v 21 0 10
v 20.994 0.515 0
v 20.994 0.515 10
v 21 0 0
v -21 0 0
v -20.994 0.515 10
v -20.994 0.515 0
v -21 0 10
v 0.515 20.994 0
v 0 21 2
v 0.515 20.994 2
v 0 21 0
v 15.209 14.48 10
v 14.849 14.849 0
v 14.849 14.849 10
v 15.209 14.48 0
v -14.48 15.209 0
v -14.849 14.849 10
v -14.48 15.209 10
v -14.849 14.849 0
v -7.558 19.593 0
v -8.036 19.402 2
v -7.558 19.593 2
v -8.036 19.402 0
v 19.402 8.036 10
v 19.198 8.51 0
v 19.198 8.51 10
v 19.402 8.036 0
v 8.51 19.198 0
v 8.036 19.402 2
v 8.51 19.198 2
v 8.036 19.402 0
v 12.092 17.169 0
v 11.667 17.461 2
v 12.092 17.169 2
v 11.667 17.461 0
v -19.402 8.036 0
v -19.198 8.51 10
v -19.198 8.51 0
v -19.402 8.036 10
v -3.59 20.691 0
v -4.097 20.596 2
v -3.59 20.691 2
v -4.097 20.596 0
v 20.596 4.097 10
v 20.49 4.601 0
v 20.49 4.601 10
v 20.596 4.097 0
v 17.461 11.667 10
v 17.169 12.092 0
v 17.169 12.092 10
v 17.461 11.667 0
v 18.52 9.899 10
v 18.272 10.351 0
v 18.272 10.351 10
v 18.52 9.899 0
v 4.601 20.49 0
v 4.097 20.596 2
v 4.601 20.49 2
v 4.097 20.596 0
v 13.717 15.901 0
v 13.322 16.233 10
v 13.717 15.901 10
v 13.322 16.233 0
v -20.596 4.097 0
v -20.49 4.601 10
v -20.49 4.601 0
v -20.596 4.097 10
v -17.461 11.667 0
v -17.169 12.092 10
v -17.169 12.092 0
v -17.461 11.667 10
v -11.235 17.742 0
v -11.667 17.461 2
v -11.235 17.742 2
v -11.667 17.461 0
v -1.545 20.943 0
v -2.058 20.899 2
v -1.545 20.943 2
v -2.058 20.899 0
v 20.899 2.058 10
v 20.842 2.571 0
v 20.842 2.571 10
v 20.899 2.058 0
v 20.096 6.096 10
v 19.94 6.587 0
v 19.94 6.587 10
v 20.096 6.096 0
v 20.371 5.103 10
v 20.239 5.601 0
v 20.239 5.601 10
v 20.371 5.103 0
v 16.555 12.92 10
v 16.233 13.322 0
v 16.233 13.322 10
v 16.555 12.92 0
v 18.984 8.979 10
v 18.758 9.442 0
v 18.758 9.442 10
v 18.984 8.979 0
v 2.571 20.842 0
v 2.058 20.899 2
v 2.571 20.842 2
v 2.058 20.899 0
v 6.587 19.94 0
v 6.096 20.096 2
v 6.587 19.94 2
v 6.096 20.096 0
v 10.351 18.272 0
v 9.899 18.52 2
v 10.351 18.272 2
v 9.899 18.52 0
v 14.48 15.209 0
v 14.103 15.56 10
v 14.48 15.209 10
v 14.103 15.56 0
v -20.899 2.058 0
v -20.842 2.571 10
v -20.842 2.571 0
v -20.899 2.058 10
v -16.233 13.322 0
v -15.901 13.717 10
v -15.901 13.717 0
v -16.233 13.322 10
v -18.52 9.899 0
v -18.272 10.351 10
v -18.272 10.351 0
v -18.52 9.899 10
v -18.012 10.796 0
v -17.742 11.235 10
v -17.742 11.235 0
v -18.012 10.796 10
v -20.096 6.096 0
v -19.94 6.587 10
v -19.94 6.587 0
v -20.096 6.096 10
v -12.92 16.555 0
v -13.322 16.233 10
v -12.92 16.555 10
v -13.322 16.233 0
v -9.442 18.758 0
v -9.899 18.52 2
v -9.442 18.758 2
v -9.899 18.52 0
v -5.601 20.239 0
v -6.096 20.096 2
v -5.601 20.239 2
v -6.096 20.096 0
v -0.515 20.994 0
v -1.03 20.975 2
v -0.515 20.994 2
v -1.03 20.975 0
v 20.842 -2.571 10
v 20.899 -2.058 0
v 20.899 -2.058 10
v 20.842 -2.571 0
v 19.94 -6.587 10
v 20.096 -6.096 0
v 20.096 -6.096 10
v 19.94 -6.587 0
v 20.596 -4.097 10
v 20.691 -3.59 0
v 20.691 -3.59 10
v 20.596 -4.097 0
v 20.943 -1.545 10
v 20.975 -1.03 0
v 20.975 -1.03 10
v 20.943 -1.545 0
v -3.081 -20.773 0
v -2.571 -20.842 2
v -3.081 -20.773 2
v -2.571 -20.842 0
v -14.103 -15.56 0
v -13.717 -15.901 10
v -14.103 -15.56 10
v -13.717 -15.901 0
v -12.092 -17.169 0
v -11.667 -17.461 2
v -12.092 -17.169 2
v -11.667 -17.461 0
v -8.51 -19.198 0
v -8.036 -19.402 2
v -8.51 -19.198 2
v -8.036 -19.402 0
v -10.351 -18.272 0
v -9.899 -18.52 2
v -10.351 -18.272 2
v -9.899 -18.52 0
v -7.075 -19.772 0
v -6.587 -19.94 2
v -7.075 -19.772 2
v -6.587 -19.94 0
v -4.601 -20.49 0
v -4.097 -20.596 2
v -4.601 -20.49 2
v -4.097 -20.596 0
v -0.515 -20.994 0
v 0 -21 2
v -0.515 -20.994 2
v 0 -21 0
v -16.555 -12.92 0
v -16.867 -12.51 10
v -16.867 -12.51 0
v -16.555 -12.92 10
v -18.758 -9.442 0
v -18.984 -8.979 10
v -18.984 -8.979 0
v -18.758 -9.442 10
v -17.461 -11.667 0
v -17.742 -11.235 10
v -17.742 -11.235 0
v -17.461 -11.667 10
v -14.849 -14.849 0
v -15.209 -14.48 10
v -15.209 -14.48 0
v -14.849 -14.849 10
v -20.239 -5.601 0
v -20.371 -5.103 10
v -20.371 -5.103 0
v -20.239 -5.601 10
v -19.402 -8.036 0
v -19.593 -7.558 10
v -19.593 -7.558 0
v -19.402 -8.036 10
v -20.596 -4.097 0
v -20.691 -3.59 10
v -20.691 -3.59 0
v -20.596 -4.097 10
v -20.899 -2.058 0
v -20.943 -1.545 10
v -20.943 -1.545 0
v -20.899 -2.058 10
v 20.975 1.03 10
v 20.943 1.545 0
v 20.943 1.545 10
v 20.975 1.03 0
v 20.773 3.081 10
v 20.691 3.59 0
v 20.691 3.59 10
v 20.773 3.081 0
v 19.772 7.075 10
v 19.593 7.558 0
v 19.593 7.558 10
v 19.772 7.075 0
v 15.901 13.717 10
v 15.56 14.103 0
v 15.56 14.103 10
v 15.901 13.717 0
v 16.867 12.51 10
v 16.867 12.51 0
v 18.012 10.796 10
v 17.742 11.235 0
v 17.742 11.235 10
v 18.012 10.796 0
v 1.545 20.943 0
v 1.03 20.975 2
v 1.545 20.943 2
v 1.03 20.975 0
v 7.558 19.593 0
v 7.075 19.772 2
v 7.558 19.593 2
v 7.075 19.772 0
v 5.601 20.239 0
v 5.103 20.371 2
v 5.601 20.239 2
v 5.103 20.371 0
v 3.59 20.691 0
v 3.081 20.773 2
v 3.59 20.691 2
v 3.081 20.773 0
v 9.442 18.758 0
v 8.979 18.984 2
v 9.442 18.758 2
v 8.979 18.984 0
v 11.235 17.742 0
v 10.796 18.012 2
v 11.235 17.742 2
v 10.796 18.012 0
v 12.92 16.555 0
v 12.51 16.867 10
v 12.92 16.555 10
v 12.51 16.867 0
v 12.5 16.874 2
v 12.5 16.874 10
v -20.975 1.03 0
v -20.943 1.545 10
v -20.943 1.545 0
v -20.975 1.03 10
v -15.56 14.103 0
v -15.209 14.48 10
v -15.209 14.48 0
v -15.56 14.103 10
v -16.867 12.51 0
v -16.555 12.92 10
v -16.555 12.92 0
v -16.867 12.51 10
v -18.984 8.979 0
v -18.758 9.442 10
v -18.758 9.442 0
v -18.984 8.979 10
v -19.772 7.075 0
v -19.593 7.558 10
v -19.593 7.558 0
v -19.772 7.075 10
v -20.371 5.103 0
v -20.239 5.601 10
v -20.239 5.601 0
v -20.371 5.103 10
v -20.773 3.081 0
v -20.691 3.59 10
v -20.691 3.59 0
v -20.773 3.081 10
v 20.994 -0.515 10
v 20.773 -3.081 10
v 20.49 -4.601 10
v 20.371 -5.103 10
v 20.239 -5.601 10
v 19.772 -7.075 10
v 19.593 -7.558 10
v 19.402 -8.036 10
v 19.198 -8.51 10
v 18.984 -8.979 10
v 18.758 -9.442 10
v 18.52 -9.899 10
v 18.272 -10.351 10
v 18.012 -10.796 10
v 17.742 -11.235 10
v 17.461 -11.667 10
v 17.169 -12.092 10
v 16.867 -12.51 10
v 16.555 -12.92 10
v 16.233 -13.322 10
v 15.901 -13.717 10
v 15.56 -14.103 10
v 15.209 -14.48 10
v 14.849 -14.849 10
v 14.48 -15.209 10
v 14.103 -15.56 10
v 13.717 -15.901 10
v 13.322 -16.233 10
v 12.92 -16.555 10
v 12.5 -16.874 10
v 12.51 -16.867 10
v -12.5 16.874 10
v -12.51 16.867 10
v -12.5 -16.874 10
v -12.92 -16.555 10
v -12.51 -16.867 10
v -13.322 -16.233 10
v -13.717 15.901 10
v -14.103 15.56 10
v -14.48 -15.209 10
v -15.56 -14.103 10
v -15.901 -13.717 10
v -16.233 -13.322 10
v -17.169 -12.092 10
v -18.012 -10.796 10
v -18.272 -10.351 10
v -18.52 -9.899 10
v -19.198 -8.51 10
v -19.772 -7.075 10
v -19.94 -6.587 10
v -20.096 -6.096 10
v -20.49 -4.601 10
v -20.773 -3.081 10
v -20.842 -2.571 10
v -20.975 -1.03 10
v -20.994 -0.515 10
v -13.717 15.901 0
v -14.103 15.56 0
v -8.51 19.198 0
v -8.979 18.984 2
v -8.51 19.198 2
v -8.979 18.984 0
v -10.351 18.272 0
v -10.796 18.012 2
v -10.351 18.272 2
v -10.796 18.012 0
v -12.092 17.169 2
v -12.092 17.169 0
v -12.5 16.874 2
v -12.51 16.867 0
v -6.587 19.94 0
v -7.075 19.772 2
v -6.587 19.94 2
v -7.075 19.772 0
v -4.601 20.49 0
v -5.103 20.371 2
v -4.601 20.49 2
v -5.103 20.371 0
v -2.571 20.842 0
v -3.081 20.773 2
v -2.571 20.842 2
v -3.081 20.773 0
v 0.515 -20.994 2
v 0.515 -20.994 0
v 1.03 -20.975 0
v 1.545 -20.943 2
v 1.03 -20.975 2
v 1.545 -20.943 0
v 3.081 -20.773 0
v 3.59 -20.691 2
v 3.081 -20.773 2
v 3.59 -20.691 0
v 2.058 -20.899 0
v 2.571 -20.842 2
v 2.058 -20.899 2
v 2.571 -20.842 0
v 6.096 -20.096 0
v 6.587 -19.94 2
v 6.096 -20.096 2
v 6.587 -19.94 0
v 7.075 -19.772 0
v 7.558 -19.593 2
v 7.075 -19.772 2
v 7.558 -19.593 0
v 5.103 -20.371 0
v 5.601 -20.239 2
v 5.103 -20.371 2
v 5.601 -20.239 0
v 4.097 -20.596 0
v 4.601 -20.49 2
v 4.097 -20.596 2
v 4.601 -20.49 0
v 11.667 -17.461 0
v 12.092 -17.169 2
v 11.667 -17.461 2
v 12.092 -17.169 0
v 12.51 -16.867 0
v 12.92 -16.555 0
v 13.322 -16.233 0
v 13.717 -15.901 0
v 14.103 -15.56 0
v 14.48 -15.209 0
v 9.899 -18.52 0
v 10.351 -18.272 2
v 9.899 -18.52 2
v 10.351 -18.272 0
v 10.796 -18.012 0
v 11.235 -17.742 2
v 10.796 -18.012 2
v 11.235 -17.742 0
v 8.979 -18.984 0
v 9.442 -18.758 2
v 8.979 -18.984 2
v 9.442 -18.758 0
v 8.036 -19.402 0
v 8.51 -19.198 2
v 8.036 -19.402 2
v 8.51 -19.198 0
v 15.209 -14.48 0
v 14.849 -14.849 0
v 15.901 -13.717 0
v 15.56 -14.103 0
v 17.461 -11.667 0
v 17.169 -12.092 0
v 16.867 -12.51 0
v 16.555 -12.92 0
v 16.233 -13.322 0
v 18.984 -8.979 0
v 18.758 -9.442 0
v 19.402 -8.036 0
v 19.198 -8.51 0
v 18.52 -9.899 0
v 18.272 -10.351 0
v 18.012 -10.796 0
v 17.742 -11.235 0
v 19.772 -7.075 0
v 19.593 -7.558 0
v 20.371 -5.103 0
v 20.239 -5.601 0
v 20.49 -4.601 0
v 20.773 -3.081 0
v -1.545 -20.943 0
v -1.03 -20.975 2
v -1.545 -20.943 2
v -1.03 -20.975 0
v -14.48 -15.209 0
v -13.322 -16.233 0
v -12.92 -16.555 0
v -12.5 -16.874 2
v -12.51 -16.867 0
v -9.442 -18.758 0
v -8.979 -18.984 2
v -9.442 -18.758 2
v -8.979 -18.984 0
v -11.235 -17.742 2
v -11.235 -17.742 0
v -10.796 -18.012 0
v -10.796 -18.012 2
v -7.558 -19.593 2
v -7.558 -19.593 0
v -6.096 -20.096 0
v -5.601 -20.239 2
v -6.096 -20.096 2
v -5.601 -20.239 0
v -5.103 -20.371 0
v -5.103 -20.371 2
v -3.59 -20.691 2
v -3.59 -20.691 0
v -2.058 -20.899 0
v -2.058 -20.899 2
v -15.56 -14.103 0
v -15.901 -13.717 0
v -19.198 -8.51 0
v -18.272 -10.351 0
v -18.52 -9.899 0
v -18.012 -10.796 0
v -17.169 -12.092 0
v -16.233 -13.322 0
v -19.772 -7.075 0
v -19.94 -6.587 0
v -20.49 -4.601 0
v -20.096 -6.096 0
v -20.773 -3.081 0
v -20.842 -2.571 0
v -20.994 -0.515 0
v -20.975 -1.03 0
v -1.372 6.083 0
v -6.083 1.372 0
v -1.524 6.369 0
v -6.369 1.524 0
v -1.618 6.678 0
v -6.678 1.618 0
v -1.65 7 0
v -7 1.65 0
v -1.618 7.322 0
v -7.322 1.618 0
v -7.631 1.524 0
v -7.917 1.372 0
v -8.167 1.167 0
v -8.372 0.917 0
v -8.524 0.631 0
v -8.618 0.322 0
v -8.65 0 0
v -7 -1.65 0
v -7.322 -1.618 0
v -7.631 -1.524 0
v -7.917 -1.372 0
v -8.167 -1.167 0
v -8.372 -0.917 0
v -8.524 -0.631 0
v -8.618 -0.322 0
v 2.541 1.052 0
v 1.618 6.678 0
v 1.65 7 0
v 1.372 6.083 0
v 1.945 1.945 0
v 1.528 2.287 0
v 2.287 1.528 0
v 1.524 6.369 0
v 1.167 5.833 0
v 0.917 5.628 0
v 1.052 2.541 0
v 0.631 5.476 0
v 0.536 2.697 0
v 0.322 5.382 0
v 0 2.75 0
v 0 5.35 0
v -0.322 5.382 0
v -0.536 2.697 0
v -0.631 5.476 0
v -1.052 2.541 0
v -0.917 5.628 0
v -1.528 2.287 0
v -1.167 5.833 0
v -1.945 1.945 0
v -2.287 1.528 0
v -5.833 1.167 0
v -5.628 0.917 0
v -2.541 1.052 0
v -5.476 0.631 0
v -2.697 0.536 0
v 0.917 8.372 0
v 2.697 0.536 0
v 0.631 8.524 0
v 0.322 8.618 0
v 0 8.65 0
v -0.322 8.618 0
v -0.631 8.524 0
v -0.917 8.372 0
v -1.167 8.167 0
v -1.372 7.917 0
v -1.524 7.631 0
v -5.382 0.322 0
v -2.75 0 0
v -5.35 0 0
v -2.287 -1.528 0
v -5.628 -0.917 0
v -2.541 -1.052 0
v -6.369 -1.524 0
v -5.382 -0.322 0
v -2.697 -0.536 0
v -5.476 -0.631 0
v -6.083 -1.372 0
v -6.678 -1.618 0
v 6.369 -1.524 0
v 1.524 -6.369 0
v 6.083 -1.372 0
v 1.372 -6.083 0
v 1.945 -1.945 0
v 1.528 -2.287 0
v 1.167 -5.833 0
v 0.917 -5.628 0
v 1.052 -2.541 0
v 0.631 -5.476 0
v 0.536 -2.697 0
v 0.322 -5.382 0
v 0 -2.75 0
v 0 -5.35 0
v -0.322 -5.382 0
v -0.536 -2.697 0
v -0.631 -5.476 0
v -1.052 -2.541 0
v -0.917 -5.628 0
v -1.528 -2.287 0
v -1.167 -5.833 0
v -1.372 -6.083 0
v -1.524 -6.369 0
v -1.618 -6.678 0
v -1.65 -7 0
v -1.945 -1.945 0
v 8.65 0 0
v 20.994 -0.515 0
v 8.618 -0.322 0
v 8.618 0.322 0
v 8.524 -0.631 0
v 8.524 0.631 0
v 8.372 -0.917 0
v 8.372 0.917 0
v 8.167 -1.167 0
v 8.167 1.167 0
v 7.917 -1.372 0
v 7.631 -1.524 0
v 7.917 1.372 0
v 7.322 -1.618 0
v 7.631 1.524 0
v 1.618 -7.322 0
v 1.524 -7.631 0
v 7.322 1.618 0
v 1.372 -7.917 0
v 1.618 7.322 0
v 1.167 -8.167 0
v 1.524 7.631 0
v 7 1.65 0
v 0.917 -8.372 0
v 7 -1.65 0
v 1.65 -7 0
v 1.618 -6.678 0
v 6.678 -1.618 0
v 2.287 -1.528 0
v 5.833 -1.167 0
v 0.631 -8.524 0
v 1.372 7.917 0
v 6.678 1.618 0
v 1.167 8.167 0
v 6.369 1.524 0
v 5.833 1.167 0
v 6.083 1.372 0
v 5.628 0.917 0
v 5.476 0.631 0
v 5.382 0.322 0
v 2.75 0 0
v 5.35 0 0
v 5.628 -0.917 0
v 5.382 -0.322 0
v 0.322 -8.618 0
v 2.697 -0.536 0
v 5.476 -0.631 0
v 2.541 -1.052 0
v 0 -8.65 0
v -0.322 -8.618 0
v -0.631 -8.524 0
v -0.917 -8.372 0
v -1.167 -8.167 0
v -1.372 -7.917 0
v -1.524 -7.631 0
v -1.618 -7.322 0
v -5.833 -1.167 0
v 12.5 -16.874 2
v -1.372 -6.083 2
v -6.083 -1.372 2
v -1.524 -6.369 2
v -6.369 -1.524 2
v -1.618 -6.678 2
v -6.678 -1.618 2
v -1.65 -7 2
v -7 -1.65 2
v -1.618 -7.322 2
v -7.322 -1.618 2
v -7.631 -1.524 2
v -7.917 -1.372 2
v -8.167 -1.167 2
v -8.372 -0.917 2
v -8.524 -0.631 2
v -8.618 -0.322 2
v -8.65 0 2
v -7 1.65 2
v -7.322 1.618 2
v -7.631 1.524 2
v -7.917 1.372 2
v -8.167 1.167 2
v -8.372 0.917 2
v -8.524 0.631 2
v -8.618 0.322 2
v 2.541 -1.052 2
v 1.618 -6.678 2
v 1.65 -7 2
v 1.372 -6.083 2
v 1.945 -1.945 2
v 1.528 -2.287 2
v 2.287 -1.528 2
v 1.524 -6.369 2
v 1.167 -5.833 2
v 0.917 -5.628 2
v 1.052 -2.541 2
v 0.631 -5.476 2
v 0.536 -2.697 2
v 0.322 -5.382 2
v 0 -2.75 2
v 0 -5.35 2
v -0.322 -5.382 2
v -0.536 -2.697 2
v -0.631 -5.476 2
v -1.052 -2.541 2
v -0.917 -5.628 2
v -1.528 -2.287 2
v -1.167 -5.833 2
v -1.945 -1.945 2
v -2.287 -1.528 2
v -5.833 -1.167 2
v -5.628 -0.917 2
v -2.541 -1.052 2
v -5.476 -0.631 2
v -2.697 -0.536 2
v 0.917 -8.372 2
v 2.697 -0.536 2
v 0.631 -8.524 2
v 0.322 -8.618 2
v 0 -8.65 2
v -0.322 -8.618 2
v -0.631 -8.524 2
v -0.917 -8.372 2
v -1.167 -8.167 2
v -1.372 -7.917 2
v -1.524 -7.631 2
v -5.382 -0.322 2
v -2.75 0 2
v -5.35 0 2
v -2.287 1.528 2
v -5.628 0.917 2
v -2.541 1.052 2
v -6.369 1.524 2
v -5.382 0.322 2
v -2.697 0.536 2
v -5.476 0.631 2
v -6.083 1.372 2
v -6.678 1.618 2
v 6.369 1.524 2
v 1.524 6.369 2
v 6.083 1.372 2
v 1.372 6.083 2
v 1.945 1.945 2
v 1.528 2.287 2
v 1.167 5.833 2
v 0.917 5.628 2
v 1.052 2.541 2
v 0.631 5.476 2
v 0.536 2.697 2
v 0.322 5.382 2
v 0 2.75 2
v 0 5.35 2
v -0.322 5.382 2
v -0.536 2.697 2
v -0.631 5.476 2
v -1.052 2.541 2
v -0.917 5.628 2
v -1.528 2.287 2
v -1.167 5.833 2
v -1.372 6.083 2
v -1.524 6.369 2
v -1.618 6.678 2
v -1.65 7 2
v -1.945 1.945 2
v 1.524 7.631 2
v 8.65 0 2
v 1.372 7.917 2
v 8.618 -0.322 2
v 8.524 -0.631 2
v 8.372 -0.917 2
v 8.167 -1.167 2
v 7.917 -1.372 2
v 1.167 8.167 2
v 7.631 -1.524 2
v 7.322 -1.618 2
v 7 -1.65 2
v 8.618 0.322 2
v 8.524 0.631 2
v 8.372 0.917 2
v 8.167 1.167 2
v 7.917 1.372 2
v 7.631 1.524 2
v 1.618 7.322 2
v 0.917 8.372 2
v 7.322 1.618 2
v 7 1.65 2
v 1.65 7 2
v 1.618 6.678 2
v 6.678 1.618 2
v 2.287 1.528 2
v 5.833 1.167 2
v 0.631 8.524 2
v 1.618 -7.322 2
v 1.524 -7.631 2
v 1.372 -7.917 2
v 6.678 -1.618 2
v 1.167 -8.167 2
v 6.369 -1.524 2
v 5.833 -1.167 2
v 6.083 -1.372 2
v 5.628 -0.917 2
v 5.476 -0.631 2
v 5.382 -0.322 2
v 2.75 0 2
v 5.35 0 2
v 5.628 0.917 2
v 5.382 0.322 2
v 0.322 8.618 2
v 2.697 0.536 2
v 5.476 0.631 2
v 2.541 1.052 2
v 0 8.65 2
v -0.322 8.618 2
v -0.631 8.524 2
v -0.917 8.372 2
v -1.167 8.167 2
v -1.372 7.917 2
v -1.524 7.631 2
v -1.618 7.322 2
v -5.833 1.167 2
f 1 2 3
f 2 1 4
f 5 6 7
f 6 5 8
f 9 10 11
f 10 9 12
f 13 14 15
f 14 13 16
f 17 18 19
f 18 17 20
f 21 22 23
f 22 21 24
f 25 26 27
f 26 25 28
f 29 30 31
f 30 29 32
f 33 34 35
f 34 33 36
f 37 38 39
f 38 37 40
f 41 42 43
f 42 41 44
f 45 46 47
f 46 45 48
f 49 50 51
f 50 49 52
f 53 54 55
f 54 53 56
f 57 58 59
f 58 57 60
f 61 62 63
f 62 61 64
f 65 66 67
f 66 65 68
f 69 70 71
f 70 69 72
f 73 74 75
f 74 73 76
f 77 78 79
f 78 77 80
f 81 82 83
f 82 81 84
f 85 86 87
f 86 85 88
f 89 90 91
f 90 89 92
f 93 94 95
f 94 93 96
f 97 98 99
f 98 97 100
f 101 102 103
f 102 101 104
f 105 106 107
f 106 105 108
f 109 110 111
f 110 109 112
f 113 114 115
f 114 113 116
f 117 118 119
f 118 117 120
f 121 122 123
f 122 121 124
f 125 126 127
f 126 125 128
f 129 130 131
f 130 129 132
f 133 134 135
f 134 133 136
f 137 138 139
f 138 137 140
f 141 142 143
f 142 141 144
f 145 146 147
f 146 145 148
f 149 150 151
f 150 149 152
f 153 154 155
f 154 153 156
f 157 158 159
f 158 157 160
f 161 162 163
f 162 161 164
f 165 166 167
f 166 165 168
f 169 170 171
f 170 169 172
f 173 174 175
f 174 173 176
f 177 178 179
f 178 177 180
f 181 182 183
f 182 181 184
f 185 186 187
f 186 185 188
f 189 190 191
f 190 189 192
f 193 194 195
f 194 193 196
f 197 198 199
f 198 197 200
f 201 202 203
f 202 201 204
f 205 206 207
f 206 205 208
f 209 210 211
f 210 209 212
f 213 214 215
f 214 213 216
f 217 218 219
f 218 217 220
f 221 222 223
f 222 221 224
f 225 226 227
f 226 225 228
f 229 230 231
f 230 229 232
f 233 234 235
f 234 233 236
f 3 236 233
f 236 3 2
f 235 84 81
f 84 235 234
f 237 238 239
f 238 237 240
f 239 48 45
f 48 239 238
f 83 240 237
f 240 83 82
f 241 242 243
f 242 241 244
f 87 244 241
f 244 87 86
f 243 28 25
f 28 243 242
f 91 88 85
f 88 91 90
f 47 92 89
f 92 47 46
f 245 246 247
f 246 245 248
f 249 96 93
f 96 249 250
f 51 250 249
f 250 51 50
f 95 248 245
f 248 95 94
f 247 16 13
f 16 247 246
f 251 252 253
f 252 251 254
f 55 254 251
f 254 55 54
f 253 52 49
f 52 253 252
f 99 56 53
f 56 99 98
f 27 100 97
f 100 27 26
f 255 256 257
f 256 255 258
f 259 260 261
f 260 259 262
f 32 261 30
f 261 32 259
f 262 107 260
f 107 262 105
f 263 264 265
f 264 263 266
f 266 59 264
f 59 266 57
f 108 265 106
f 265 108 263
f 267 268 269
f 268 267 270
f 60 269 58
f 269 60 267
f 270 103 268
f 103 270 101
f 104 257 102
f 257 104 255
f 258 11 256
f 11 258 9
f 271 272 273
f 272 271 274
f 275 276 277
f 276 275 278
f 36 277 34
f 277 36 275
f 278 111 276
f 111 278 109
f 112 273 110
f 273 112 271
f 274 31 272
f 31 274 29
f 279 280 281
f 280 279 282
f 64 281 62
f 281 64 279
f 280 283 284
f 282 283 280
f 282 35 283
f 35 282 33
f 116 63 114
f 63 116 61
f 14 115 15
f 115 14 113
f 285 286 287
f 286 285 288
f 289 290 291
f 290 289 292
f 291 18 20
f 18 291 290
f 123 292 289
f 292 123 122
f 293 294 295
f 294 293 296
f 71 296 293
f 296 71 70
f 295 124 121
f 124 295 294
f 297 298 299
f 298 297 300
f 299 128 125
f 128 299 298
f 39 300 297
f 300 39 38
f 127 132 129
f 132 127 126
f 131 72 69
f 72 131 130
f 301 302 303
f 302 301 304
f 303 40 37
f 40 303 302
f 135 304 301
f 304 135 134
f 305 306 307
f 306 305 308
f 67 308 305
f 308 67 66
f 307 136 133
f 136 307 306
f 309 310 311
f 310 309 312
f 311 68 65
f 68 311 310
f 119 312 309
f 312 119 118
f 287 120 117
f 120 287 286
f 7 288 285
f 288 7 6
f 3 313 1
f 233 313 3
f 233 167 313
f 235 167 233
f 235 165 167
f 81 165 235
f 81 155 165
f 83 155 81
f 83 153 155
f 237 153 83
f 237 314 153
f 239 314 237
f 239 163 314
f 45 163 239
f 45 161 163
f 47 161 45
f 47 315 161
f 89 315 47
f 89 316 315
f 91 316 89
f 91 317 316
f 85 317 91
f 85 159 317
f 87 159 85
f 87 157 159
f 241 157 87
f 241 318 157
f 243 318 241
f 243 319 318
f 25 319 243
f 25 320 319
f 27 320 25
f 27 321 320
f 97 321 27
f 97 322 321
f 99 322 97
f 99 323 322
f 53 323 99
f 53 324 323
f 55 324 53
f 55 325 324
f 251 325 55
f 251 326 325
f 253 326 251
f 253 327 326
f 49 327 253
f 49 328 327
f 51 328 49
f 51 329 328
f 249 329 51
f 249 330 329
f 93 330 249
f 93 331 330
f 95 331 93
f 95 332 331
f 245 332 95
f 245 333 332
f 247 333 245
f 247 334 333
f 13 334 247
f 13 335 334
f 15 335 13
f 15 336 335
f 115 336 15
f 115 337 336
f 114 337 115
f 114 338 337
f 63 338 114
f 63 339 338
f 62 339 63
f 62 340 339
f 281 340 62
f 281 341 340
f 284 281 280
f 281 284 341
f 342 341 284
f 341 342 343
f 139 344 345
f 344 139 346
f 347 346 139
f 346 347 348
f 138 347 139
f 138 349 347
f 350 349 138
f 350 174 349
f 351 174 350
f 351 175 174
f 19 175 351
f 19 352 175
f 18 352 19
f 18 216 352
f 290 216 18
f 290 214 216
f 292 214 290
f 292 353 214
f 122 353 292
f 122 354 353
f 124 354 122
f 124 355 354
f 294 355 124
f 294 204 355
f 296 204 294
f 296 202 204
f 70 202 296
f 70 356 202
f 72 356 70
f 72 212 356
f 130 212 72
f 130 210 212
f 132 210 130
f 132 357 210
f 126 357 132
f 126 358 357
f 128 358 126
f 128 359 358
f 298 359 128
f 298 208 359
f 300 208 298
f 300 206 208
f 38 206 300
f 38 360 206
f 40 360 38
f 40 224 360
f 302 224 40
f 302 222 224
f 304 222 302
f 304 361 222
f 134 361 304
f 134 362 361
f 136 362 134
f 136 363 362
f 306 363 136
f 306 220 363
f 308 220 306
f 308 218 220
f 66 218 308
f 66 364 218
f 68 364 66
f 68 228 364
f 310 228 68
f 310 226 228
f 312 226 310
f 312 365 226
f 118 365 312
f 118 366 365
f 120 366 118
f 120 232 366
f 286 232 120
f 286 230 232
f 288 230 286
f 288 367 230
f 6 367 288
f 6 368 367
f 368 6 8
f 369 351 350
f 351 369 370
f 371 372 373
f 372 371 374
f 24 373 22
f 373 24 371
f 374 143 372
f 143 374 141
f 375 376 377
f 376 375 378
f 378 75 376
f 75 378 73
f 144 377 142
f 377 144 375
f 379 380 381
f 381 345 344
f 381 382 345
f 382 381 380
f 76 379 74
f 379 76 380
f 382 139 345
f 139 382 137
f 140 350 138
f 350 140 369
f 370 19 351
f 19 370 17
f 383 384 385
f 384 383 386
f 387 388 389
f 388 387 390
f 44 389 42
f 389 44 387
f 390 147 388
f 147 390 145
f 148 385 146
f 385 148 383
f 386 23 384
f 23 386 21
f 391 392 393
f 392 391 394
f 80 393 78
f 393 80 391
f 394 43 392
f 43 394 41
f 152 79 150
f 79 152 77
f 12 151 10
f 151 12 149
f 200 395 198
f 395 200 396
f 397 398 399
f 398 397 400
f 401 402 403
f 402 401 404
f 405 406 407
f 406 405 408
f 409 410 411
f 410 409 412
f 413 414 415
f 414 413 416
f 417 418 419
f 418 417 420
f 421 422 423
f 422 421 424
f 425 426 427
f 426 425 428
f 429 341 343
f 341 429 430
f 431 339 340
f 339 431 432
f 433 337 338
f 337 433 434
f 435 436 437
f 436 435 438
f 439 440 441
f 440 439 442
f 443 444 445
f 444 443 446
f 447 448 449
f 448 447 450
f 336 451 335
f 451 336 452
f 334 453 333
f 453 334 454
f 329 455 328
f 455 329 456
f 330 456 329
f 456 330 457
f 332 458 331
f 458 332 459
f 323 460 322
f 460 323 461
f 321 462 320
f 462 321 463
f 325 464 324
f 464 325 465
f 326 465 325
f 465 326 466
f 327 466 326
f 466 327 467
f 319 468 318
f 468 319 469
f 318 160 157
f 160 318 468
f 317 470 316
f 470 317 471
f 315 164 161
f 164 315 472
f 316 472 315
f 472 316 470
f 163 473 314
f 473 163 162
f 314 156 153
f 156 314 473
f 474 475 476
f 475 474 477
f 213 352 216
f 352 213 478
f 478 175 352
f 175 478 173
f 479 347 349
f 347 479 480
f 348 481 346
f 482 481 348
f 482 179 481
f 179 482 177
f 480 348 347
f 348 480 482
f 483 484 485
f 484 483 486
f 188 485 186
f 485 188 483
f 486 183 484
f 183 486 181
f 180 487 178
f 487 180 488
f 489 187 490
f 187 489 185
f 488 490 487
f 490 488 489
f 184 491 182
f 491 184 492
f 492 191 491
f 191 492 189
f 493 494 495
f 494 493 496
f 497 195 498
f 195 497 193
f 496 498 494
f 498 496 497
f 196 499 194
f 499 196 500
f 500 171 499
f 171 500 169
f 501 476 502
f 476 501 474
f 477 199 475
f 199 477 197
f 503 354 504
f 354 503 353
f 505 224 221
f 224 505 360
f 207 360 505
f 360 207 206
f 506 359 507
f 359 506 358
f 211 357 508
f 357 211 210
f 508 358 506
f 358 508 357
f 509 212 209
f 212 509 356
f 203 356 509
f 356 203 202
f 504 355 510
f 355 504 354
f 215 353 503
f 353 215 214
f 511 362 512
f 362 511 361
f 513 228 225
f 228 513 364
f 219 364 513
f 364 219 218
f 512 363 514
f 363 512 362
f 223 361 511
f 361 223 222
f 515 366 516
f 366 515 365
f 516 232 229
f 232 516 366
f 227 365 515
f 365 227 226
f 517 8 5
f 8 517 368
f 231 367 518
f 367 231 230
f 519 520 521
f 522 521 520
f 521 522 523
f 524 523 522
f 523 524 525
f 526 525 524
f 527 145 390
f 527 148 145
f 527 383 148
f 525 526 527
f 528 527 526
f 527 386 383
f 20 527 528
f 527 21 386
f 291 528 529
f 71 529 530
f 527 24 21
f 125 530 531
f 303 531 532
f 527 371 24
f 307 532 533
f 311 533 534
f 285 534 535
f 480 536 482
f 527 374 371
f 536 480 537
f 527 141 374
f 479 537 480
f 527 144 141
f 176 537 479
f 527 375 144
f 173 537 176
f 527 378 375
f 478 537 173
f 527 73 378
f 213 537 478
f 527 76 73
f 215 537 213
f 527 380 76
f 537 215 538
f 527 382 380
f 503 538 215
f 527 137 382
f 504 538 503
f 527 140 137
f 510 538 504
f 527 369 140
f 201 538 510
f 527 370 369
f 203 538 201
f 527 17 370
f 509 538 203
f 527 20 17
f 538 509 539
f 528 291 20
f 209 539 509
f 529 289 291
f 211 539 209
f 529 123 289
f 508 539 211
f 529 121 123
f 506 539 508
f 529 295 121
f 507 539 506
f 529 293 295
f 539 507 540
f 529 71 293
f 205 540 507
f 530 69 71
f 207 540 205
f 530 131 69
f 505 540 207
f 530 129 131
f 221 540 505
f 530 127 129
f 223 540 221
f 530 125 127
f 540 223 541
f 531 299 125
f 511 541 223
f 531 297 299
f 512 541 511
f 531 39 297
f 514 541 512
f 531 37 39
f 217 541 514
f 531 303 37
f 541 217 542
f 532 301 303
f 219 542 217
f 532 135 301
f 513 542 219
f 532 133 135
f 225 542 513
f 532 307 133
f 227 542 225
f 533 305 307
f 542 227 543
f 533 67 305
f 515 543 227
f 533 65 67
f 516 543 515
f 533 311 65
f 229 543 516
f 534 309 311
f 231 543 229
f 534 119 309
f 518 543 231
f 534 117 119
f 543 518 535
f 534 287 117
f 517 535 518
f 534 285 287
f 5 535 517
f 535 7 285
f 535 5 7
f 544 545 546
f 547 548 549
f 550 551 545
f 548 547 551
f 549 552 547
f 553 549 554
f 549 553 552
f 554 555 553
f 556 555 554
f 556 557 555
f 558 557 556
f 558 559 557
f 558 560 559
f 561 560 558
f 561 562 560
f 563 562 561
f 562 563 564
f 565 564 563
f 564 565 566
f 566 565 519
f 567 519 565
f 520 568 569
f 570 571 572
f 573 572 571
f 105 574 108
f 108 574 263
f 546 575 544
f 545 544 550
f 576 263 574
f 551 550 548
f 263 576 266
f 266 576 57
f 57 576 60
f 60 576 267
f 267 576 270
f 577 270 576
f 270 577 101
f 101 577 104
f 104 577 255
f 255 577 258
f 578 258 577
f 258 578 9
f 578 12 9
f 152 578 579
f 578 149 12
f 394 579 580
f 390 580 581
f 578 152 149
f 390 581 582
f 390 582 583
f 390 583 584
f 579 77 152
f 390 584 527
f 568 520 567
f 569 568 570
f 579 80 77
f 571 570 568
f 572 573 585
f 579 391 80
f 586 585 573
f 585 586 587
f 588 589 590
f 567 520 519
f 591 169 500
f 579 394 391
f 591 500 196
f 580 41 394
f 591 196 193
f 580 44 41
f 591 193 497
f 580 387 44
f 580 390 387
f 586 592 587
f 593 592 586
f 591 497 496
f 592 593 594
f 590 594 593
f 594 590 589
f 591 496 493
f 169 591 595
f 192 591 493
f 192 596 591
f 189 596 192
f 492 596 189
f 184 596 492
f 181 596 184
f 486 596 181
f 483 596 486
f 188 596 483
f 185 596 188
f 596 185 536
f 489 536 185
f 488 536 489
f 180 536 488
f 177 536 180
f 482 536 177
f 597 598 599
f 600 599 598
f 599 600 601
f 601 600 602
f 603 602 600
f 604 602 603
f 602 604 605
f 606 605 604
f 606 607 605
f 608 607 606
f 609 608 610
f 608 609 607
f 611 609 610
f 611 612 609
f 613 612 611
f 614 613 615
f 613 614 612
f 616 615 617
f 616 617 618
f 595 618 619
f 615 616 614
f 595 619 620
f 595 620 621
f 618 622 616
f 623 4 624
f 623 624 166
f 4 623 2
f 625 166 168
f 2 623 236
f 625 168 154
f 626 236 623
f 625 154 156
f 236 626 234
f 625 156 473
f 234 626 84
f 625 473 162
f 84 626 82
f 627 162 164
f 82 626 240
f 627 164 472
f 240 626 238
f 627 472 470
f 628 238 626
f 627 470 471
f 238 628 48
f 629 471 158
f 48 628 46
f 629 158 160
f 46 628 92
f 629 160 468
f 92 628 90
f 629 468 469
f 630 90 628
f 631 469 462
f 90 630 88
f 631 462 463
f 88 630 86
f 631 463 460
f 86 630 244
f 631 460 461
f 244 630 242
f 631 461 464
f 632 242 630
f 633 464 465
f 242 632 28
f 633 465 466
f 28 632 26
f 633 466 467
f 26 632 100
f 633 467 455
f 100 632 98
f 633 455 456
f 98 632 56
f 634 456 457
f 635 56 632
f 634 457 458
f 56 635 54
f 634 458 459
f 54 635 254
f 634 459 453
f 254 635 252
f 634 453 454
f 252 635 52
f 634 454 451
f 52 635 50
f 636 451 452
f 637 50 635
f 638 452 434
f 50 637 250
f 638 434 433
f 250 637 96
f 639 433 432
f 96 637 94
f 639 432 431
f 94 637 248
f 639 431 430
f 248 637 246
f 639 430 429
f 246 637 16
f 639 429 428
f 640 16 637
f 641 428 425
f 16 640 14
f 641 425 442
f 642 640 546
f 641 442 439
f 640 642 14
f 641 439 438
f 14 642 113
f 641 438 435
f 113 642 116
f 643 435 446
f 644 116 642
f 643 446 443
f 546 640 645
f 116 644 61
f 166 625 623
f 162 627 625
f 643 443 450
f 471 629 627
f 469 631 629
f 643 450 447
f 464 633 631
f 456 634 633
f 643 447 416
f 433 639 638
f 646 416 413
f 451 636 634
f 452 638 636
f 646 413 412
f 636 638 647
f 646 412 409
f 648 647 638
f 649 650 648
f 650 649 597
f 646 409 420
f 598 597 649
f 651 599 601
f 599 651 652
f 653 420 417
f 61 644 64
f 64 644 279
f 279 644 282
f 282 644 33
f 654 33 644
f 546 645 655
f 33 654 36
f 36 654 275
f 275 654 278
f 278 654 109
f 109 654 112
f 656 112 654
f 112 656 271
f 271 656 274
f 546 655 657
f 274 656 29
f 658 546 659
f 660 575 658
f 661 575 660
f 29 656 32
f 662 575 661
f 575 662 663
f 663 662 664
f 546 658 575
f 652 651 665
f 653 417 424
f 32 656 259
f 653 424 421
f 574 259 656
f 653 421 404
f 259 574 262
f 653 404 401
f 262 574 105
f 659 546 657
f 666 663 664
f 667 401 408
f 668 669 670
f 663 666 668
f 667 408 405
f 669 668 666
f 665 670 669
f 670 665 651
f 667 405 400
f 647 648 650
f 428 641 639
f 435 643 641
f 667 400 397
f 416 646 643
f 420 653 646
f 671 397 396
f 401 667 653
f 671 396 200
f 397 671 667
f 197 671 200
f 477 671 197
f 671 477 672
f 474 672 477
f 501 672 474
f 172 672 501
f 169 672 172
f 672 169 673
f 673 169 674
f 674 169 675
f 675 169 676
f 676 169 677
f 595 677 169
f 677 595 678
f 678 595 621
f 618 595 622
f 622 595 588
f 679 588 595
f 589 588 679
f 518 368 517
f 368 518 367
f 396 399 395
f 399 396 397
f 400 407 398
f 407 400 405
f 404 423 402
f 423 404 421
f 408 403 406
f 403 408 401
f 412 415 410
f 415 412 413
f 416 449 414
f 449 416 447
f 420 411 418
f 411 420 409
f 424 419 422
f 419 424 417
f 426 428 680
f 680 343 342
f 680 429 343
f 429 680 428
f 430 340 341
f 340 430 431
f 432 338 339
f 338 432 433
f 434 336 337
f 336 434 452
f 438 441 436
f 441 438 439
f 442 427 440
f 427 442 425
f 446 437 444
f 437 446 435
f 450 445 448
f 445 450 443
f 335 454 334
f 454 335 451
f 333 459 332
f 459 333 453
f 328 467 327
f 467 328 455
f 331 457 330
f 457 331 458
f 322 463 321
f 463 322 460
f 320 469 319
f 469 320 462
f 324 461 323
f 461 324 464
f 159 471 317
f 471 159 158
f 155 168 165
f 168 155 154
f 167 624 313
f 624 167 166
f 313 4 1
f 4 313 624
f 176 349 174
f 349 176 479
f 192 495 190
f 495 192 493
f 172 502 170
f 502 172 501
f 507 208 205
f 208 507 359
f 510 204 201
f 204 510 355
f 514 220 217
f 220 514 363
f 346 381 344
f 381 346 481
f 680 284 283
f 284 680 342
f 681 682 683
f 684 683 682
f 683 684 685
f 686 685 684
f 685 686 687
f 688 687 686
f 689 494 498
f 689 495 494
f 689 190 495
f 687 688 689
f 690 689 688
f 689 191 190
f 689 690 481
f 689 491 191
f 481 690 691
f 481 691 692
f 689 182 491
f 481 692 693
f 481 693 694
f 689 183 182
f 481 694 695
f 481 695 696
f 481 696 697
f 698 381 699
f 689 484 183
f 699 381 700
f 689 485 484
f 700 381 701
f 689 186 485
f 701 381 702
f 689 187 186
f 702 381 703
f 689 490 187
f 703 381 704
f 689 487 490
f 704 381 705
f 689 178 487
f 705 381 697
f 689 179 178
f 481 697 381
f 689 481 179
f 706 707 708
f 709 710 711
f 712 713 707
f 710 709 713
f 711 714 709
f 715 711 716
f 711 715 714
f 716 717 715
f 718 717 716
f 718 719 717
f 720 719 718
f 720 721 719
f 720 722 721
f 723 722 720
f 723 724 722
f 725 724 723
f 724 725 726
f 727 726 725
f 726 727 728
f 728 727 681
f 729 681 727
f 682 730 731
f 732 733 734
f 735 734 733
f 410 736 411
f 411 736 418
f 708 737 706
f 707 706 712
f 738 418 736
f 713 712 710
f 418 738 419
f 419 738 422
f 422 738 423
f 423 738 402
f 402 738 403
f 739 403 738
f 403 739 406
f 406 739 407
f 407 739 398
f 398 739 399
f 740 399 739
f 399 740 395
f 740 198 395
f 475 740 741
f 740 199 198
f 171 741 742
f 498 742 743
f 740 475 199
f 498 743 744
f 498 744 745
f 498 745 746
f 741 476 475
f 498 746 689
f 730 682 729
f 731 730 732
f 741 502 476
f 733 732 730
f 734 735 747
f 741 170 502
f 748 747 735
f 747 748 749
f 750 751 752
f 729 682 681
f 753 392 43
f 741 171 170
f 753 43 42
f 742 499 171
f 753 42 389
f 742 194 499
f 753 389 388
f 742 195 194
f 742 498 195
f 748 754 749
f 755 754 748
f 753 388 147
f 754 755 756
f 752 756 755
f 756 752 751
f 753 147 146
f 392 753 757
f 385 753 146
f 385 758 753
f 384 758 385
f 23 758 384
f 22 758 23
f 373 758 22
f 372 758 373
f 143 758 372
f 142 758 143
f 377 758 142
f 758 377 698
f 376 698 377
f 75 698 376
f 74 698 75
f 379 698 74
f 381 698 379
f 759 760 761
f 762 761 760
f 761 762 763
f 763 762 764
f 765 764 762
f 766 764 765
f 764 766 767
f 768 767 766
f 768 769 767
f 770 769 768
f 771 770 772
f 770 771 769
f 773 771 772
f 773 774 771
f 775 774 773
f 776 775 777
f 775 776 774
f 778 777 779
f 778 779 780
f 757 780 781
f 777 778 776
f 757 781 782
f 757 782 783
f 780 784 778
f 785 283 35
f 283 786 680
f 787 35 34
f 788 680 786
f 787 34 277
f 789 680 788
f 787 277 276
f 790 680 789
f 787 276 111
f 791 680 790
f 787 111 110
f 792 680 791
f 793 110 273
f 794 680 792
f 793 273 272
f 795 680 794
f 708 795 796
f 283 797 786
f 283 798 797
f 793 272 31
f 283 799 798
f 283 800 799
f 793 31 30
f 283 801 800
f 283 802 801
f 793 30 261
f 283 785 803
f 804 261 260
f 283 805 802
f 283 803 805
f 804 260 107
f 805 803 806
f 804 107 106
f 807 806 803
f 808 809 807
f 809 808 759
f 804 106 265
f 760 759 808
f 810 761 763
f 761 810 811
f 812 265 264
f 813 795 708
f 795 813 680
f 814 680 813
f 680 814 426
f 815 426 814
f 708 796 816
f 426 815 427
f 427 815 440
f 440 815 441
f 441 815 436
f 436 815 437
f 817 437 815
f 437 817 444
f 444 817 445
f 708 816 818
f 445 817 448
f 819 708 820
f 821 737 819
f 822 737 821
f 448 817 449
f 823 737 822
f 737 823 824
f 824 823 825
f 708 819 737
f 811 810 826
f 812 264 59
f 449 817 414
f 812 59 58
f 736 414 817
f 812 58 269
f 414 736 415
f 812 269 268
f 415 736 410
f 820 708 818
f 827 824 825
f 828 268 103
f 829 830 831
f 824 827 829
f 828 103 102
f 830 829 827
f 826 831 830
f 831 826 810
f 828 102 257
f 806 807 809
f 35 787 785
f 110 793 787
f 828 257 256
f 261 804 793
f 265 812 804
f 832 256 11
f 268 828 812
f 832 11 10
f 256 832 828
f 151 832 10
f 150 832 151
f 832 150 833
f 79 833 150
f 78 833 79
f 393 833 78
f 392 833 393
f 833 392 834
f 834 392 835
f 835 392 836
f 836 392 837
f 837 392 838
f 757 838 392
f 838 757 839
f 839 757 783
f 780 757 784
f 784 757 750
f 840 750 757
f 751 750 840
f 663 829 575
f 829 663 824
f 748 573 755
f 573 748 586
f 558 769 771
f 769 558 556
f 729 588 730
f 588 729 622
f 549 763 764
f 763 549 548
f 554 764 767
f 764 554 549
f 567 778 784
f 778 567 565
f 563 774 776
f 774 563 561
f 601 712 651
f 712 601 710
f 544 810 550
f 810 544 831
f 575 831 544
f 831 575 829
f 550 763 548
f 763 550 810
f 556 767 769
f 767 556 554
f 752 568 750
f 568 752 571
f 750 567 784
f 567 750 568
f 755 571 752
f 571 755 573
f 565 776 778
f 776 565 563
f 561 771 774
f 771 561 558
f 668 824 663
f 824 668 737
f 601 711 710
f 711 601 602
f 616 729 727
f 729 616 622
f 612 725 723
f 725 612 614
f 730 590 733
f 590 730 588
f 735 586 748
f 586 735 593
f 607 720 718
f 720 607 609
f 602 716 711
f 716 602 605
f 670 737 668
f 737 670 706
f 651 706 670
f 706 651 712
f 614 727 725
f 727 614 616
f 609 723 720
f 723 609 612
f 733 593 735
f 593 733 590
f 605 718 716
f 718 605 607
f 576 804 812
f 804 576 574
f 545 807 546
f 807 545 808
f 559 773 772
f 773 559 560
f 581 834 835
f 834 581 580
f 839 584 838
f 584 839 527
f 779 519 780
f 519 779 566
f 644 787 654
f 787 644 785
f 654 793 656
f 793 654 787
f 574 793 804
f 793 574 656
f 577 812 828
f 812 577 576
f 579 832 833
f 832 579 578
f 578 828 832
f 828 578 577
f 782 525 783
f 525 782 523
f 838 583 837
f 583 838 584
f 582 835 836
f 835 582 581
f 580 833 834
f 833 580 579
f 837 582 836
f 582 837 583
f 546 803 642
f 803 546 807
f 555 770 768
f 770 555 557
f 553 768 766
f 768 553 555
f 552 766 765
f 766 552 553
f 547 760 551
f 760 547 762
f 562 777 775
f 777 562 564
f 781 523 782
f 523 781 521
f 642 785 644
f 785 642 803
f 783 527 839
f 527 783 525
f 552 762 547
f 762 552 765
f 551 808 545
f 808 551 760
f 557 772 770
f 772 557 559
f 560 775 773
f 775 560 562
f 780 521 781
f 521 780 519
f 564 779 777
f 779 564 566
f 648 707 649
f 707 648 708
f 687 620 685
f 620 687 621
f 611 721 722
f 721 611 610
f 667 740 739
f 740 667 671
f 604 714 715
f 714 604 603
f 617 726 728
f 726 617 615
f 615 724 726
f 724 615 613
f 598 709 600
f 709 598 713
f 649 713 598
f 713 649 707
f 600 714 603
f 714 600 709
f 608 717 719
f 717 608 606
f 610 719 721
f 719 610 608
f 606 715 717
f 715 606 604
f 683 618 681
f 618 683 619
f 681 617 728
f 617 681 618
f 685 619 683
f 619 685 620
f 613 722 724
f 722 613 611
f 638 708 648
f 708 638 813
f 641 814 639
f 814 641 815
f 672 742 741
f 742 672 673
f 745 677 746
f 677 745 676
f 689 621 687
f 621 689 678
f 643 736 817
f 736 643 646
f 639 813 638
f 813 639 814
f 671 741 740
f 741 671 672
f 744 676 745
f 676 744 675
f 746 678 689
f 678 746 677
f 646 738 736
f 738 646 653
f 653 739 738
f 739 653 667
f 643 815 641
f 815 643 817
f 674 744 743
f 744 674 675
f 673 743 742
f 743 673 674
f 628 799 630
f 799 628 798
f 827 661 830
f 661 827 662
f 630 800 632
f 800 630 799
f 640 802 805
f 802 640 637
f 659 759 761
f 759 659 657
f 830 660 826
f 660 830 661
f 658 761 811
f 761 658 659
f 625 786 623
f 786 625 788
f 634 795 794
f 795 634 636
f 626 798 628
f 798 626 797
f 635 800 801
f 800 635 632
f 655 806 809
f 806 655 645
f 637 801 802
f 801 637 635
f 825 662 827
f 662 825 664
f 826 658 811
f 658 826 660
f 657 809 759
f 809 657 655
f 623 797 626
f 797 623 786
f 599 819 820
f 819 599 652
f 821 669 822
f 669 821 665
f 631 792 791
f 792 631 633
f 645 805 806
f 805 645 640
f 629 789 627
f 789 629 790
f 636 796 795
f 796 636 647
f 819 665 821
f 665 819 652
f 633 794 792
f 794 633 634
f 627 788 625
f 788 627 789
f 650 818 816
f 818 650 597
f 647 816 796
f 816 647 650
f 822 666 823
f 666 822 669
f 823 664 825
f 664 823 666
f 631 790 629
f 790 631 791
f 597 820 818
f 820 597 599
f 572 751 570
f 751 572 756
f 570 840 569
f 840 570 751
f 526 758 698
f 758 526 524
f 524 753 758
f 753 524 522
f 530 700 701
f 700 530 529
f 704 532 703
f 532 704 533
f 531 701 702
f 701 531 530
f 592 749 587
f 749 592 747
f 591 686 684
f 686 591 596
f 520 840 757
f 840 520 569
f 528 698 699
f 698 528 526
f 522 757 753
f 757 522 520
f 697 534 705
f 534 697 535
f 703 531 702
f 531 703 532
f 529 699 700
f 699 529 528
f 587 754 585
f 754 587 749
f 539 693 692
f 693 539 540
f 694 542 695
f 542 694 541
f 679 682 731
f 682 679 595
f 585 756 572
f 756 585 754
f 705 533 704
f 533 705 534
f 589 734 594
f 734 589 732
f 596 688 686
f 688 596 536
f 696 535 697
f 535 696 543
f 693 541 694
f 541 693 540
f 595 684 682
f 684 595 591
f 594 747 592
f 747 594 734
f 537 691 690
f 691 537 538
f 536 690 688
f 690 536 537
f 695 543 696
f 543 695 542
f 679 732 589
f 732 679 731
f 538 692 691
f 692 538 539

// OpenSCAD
difference() {
    cylinder(d=42,h=10, $fn=256);
    
    translate([-25/2,-42/2,2])
    cube([25,42,10]);
    
    cylinder(d=5.5, h = 50, $fn=32);
    
    translate([0,7,0])
    cylinder(d=3.3, h = 50, $fn=32);
    
    translate([0,-7,0])
    cylinder(d=3.3, h = 50, $fn=32);
    
    translate([7,0,0])
    cylinder(d=3.3, h = 50, $fn=32);
    
    translate([-7,0,0])
    cylinder(d=3.3, h = 50, $fn=32);
}
